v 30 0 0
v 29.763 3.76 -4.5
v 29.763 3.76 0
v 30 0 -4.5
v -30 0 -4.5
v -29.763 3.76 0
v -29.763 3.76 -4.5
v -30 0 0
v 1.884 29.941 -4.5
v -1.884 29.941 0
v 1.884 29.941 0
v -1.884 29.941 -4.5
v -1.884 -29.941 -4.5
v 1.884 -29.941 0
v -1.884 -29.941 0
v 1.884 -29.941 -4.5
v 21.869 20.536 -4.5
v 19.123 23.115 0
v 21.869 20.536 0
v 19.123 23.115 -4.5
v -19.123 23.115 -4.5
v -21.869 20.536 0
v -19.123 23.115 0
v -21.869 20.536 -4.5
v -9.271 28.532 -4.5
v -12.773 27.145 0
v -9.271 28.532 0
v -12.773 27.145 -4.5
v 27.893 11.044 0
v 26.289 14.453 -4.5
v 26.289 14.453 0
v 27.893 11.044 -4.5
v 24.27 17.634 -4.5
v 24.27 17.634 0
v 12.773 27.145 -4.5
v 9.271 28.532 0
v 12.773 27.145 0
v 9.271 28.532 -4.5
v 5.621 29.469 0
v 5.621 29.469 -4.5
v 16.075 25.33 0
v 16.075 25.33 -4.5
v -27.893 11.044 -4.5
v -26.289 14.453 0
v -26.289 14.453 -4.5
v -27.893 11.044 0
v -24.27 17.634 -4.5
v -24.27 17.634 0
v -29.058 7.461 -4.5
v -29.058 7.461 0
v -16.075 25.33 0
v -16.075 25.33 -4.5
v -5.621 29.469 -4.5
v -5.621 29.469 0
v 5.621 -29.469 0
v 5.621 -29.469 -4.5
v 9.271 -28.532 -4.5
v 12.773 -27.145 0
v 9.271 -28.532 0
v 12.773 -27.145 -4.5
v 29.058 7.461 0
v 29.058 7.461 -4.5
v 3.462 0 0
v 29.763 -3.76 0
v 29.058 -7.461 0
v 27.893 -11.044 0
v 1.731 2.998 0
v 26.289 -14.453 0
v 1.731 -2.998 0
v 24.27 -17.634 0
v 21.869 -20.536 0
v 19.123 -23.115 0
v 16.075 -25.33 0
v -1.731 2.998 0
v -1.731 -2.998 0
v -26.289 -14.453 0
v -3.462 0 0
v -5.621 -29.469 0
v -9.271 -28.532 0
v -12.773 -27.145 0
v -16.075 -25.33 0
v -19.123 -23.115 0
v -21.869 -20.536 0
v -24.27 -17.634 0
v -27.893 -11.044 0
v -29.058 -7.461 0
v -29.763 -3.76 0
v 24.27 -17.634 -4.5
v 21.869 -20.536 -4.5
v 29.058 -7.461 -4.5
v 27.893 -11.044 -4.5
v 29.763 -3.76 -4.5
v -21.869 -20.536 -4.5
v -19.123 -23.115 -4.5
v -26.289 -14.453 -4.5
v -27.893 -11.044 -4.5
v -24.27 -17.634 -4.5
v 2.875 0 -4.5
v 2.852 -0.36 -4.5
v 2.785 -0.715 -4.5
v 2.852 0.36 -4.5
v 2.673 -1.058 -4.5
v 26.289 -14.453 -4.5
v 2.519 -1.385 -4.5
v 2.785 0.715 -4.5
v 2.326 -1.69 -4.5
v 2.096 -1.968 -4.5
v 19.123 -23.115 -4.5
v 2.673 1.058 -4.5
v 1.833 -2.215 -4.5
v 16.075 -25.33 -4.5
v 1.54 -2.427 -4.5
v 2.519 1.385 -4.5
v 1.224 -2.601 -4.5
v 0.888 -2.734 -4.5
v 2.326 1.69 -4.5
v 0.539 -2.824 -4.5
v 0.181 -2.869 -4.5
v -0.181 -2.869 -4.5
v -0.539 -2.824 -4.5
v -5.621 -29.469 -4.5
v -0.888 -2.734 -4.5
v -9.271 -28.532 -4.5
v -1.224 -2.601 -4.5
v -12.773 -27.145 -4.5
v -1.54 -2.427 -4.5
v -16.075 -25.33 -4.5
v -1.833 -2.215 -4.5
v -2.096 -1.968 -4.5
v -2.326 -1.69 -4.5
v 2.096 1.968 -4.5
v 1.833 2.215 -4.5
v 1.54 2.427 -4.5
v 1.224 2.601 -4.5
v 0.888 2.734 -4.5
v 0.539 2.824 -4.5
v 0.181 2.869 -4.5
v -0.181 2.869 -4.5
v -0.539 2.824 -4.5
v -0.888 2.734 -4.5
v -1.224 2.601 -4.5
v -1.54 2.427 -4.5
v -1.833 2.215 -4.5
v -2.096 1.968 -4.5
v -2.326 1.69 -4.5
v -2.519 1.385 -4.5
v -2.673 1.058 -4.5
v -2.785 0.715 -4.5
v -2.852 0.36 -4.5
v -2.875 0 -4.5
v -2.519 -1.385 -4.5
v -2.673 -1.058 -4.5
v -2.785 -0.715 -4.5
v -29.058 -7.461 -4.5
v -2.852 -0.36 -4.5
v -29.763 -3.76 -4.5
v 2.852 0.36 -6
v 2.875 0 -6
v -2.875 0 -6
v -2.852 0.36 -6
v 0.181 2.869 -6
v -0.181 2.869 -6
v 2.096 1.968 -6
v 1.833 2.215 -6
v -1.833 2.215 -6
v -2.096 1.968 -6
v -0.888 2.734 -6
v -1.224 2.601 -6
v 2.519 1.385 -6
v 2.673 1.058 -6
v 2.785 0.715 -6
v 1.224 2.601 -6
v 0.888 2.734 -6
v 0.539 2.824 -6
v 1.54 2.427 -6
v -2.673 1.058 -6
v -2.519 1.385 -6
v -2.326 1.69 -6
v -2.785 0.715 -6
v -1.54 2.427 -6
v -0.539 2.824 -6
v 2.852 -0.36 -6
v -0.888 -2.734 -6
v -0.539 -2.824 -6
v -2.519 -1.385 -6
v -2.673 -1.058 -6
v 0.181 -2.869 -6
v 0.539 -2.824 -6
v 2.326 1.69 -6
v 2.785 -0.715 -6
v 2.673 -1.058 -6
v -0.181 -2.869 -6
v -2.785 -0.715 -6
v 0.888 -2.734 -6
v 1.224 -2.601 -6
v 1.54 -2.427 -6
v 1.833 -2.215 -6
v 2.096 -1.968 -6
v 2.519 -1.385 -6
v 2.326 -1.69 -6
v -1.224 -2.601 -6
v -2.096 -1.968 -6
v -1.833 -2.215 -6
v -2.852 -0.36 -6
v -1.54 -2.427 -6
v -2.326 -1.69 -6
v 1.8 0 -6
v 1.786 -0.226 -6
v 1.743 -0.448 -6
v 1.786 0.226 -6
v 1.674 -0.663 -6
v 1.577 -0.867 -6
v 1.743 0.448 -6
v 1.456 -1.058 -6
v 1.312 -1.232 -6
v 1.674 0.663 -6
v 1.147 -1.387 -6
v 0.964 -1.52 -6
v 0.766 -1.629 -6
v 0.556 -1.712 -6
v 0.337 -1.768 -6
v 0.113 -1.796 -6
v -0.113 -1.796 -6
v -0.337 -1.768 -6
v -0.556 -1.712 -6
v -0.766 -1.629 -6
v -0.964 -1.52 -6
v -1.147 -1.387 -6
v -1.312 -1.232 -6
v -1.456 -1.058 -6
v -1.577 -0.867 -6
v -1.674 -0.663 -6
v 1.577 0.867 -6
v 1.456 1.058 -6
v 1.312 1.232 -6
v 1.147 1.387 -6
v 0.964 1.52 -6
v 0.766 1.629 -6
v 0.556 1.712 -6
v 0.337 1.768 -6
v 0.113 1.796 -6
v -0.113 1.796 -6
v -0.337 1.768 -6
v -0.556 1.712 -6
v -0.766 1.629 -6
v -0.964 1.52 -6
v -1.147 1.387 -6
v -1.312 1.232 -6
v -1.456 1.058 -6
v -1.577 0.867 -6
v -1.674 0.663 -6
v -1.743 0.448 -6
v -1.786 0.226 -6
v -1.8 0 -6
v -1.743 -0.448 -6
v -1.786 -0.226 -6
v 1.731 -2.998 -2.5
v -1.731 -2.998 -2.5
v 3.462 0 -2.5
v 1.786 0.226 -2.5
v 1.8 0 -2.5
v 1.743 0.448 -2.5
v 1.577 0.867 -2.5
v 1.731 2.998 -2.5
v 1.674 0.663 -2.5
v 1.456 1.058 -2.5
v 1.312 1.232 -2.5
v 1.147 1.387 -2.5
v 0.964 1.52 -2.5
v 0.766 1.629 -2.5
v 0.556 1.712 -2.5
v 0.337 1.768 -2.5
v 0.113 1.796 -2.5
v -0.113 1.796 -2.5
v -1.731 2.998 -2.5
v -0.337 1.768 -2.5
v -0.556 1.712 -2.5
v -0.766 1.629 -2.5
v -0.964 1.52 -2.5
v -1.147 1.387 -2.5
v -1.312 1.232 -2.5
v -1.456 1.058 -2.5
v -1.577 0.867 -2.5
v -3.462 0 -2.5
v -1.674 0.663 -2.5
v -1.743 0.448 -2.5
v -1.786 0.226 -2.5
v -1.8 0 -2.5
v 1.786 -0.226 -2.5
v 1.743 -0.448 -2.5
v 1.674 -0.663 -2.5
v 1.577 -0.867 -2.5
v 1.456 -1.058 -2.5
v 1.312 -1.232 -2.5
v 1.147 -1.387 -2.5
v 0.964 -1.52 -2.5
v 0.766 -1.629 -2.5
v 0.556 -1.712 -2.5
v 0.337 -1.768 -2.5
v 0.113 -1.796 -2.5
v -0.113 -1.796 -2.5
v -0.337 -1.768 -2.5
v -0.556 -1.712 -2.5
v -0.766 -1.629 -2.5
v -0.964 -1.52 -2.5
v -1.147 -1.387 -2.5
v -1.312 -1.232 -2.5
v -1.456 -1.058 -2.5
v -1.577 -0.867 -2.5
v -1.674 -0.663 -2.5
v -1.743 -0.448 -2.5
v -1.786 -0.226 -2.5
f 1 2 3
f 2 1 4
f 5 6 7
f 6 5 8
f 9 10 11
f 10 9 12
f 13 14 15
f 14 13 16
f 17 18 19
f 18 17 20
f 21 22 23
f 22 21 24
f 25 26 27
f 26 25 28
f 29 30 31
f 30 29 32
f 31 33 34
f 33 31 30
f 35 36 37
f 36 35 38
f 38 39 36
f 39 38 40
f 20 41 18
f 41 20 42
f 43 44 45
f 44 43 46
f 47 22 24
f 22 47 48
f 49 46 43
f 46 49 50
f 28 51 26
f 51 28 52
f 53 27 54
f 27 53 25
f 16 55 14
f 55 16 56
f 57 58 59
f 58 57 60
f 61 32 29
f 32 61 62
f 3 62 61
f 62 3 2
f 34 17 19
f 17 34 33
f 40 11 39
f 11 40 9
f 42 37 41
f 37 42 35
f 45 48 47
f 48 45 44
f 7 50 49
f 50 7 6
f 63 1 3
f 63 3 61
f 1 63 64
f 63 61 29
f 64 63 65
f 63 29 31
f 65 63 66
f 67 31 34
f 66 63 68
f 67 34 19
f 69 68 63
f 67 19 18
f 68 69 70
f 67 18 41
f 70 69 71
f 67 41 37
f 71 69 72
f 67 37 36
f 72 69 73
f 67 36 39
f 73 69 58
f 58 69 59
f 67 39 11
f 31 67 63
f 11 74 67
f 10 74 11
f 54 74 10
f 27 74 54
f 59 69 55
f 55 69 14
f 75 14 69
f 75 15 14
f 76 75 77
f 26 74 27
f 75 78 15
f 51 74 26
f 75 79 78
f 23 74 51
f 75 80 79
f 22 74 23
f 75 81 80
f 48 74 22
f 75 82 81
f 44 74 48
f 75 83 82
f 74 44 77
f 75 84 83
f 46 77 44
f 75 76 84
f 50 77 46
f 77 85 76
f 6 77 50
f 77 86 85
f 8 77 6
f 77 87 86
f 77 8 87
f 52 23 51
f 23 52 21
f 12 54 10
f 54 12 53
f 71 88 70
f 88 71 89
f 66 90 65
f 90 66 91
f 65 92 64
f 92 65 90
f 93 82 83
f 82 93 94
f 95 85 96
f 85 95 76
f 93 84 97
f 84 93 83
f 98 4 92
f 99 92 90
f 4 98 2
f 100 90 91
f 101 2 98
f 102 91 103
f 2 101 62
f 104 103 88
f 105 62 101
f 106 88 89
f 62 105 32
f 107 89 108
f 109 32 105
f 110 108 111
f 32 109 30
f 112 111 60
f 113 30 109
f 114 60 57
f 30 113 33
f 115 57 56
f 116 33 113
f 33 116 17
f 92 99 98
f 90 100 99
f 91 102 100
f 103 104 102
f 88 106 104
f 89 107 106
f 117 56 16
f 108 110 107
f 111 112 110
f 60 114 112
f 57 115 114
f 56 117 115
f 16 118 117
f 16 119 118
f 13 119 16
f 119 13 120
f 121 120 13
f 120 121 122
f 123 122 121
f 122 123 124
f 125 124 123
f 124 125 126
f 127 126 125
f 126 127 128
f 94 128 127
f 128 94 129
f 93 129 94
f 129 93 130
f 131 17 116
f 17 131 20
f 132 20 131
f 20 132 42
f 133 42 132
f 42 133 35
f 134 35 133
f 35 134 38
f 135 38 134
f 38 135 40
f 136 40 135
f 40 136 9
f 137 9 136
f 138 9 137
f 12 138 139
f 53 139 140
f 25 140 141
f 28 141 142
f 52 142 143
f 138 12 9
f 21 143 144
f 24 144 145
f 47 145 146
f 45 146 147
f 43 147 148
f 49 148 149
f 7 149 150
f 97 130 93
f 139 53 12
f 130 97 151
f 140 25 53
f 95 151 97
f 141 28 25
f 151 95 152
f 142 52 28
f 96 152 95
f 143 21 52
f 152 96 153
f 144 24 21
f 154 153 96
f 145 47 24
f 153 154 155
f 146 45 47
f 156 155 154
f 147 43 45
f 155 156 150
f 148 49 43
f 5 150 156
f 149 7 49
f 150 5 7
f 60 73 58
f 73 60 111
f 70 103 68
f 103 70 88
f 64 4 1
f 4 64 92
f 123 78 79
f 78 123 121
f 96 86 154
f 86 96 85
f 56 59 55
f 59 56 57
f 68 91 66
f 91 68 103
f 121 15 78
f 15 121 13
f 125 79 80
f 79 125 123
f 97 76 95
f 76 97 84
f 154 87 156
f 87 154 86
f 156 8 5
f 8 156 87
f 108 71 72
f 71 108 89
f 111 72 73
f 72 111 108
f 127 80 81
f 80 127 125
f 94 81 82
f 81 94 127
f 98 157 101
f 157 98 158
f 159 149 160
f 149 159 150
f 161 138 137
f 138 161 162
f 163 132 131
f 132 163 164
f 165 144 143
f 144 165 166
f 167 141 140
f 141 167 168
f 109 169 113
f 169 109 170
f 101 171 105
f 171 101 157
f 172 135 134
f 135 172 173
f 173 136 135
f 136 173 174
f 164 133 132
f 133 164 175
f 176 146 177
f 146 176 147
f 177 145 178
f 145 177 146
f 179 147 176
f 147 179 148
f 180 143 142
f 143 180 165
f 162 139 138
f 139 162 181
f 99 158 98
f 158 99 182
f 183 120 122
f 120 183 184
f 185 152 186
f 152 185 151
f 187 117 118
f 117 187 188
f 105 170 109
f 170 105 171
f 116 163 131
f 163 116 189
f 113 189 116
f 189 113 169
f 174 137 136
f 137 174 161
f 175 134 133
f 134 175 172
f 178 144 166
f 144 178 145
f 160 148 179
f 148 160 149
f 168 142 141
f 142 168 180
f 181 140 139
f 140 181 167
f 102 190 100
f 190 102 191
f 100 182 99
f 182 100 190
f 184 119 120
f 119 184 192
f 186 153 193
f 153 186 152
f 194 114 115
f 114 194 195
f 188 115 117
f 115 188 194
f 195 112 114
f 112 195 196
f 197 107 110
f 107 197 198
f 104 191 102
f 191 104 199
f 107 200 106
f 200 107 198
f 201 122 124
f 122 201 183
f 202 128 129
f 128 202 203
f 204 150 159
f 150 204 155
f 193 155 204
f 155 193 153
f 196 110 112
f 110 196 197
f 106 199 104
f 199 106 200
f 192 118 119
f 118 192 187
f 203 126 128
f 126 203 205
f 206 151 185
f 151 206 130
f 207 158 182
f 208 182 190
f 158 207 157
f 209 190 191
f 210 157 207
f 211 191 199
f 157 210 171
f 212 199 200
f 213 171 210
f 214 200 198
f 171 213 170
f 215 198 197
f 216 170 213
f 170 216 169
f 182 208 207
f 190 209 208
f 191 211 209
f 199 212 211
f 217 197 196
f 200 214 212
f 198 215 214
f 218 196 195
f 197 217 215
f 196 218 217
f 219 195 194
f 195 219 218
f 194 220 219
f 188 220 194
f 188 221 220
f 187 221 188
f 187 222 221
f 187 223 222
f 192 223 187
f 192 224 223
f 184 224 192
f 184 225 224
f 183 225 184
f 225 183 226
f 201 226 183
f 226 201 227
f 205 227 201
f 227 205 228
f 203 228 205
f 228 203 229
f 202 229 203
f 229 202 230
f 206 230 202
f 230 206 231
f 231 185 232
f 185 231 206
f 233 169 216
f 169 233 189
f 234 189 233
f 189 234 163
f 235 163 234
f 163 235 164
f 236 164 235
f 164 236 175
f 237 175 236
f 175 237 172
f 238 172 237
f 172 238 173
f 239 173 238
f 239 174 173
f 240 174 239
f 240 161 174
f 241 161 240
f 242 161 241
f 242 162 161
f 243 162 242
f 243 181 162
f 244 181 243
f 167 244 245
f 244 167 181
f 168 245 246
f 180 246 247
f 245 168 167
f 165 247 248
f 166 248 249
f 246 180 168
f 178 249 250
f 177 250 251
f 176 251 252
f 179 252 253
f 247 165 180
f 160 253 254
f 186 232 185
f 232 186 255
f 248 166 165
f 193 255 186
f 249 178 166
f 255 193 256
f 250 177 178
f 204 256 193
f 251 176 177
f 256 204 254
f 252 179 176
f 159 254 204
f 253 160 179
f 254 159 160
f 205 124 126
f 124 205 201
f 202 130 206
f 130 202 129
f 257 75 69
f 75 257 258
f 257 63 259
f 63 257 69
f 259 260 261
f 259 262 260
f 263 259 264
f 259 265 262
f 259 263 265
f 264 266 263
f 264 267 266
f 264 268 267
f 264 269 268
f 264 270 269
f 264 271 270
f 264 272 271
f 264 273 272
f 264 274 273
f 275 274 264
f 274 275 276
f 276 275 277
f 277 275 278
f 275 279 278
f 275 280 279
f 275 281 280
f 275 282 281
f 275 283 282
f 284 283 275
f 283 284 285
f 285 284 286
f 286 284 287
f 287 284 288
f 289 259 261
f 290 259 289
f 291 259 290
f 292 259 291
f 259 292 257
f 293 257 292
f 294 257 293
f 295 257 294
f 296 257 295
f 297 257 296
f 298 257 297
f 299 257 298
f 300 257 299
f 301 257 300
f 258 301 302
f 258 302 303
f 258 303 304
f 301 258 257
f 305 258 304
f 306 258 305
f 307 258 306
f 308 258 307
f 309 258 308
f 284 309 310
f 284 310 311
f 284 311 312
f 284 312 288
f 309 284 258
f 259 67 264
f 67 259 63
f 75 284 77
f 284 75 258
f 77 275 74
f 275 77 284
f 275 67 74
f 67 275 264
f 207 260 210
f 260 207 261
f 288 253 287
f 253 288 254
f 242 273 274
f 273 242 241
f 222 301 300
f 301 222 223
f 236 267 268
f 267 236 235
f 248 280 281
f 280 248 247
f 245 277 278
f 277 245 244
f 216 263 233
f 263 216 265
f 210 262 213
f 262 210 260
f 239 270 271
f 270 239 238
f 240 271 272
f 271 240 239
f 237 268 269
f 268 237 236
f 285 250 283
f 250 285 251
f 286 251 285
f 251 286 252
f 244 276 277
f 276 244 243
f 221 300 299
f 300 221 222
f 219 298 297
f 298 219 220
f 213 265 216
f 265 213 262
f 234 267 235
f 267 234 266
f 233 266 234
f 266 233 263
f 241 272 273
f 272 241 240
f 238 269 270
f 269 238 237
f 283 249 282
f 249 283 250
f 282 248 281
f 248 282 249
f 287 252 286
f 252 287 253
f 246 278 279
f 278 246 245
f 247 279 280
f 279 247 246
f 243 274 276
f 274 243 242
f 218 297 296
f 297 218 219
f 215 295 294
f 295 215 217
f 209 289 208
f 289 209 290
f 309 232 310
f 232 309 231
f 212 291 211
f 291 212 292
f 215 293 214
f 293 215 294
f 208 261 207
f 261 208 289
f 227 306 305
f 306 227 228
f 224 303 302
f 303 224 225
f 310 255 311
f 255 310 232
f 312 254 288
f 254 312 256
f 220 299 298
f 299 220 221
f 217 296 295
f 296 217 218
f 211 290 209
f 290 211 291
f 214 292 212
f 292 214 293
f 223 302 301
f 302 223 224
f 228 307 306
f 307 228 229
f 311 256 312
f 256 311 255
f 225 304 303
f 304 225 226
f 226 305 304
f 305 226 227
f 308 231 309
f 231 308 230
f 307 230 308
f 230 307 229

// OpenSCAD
$fn = 50;

difference() {
	union() {
		translate(v = [0, 0, -4.5]) {
			cylinder(h = 4.5, r = 30.0);
		}
		#translate(v = [0, 0, -6.0]) {
			cylinder(h = 6, r = 2.875);
		}
	}
	union() {
		translate(v = [0, 0, 0]) {
			rotate(a = [0, 0, 0]) {
				difference() {
					union() {
						translate(v = [0, 0, -2.5]) {
							linear_extrude(height = 2.5) {
								polygon(points = [[3.4619999999999997, 0.0], [1.7310000000000003, 2.9981799479017264], [-1.7309999999999992, 2.9981799479017264], [-3.4619999999999997, 4.2397272186481365e-16], [-1.7310000000000014, -2.998179947901726], [1.7309999999999977, -2.9981799479017277]]);
							}
						}
					}
					union();
				}
			}
		}
		#translate(v = [0, 0, -100.0]) {
			cylinder(h = 200, r = 1.8);
		}
	}
}
